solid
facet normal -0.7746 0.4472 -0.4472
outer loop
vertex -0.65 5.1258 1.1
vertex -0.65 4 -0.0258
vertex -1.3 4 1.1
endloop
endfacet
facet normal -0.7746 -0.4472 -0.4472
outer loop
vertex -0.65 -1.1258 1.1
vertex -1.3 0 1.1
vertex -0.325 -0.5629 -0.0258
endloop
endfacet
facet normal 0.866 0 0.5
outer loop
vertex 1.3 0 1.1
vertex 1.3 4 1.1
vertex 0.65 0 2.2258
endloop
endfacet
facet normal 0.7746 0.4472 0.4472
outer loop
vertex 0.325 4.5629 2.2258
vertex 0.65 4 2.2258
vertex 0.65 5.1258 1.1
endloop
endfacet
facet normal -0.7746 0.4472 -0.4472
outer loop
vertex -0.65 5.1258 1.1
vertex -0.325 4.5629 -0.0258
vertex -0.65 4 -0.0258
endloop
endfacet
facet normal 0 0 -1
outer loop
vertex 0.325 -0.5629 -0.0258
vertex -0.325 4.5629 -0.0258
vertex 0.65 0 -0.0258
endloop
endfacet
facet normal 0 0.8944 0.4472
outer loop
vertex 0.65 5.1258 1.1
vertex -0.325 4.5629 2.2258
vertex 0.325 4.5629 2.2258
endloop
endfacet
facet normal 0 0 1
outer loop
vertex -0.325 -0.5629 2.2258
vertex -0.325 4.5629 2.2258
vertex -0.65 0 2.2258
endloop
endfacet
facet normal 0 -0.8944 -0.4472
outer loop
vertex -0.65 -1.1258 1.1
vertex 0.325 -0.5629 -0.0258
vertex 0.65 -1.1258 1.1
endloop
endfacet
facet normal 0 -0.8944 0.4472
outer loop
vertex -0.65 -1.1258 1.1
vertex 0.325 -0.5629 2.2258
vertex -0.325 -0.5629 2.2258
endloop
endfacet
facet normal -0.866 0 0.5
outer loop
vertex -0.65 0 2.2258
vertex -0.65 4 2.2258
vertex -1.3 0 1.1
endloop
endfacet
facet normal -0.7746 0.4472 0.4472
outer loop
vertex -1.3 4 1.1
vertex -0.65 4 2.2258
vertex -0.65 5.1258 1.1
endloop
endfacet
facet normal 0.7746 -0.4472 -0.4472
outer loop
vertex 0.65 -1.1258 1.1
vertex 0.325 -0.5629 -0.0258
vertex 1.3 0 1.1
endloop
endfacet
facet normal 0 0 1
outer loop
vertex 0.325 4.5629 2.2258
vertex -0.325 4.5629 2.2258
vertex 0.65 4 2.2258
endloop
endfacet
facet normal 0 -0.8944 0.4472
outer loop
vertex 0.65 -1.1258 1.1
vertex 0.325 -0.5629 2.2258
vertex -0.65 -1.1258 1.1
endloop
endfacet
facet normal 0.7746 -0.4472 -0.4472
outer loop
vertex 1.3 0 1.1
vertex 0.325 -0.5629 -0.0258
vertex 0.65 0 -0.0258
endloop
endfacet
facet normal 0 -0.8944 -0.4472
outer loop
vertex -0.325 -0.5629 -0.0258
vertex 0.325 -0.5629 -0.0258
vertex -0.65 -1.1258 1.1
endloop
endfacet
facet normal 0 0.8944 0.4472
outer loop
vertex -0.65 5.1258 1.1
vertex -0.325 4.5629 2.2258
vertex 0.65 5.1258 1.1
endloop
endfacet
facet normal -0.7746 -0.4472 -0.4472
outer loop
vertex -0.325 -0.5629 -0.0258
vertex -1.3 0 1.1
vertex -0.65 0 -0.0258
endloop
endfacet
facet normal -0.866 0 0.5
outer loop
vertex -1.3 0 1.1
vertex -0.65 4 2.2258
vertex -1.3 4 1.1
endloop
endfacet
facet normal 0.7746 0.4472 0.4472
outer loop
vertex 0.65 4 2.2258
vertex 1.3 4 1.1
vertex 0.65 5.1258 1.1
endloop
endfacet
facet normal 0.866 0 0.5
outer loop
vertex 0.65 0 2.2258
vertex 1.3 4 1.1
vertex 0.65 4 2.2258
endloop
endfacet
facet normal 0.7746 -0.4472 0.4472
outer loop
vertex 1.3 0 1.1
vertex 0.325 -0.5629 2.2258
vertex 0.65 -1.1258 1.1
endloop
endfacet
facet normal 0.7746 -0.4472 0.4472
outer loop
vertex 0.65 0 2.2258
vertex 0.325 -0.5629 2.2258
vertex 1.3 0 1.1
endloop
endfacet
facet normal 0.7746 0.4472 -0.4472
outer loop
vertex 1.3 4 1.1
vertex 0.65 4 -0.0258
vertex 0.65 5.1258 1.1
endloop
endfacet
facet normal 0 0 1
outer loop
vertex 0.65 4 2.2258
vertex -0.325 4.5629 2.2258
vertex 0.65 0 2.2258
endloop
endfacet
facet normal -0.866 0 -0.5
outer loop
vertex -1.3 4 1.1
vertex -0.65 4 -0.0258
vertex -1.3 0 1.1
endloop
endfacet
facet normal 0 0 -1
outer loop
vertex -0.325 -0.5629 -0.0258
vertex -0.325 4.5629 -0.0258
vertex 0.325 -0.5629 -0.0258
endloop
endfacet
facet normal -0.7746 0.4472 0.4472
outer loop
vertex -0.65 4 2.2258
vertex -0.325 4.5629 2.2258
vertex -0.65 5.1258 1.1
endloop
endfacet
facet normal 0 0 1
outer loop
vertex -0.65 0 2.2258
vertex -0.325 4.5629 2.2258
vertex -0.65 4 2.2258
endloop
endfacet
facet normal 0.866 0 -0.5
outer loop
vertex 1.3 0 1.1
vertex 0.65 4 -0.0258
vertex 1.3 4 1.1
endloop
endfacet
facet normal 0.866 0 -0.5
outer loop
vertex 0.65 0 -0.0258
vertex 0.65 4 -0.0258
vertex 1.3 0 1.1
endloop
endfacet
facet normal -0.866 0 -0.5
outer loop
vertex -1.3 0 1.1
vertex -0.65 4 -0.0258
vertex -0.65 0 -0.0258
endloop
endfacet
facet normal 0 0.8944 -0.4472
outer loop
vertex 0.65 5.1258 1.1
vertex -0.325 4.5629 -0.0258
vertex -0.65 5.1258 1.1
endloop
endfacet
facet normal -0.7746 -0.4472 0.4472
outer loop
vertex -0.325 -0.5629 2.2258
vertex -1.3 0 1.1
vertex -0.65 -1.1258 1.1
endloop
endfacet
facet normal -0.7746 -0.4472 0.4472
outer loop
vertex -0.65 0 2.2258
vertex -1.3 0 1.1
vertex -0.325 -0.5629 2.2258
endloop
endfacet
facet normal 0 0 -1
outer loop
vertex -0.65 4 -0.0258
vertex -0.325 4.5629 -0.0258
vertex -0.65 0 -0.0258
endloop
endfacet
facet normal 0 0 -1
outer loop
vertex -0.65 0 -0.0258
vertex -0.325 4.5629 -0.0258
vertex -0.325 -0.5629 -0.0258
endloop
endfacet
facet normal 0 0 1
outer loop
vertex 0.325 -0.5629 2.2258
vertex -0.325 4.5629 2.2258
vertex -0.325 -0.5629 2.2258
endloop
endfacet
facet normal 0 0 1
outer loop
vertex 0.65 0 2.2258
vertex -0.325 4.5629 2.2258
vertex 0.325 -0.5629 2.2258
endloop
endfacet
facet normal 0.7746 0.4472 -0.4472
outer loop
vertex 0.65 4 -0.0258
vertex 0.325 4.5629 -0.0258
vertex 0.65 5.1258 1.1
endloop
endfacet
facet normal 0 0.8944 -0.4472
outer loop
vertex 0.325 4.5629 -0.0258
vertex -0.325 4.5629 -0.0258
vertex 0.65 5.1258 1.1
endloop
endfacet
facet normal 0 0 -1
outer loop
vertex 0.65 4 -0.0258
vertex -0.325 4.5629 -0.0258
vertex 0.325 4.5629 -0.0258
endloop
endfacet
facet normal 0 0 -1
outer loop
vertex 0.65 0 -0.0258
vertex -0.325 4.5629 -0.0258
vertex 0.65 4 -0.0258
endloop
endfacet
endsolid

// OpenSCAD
module rod(a, b, r) {
        hull() {
            translate(a) sphere(r,$fn=6);
            translate(b) sphere(r,$fn=6);
        }
    }
translate([0,0,1.1])
rod([0,0,0],[0,4,0],1.3);
